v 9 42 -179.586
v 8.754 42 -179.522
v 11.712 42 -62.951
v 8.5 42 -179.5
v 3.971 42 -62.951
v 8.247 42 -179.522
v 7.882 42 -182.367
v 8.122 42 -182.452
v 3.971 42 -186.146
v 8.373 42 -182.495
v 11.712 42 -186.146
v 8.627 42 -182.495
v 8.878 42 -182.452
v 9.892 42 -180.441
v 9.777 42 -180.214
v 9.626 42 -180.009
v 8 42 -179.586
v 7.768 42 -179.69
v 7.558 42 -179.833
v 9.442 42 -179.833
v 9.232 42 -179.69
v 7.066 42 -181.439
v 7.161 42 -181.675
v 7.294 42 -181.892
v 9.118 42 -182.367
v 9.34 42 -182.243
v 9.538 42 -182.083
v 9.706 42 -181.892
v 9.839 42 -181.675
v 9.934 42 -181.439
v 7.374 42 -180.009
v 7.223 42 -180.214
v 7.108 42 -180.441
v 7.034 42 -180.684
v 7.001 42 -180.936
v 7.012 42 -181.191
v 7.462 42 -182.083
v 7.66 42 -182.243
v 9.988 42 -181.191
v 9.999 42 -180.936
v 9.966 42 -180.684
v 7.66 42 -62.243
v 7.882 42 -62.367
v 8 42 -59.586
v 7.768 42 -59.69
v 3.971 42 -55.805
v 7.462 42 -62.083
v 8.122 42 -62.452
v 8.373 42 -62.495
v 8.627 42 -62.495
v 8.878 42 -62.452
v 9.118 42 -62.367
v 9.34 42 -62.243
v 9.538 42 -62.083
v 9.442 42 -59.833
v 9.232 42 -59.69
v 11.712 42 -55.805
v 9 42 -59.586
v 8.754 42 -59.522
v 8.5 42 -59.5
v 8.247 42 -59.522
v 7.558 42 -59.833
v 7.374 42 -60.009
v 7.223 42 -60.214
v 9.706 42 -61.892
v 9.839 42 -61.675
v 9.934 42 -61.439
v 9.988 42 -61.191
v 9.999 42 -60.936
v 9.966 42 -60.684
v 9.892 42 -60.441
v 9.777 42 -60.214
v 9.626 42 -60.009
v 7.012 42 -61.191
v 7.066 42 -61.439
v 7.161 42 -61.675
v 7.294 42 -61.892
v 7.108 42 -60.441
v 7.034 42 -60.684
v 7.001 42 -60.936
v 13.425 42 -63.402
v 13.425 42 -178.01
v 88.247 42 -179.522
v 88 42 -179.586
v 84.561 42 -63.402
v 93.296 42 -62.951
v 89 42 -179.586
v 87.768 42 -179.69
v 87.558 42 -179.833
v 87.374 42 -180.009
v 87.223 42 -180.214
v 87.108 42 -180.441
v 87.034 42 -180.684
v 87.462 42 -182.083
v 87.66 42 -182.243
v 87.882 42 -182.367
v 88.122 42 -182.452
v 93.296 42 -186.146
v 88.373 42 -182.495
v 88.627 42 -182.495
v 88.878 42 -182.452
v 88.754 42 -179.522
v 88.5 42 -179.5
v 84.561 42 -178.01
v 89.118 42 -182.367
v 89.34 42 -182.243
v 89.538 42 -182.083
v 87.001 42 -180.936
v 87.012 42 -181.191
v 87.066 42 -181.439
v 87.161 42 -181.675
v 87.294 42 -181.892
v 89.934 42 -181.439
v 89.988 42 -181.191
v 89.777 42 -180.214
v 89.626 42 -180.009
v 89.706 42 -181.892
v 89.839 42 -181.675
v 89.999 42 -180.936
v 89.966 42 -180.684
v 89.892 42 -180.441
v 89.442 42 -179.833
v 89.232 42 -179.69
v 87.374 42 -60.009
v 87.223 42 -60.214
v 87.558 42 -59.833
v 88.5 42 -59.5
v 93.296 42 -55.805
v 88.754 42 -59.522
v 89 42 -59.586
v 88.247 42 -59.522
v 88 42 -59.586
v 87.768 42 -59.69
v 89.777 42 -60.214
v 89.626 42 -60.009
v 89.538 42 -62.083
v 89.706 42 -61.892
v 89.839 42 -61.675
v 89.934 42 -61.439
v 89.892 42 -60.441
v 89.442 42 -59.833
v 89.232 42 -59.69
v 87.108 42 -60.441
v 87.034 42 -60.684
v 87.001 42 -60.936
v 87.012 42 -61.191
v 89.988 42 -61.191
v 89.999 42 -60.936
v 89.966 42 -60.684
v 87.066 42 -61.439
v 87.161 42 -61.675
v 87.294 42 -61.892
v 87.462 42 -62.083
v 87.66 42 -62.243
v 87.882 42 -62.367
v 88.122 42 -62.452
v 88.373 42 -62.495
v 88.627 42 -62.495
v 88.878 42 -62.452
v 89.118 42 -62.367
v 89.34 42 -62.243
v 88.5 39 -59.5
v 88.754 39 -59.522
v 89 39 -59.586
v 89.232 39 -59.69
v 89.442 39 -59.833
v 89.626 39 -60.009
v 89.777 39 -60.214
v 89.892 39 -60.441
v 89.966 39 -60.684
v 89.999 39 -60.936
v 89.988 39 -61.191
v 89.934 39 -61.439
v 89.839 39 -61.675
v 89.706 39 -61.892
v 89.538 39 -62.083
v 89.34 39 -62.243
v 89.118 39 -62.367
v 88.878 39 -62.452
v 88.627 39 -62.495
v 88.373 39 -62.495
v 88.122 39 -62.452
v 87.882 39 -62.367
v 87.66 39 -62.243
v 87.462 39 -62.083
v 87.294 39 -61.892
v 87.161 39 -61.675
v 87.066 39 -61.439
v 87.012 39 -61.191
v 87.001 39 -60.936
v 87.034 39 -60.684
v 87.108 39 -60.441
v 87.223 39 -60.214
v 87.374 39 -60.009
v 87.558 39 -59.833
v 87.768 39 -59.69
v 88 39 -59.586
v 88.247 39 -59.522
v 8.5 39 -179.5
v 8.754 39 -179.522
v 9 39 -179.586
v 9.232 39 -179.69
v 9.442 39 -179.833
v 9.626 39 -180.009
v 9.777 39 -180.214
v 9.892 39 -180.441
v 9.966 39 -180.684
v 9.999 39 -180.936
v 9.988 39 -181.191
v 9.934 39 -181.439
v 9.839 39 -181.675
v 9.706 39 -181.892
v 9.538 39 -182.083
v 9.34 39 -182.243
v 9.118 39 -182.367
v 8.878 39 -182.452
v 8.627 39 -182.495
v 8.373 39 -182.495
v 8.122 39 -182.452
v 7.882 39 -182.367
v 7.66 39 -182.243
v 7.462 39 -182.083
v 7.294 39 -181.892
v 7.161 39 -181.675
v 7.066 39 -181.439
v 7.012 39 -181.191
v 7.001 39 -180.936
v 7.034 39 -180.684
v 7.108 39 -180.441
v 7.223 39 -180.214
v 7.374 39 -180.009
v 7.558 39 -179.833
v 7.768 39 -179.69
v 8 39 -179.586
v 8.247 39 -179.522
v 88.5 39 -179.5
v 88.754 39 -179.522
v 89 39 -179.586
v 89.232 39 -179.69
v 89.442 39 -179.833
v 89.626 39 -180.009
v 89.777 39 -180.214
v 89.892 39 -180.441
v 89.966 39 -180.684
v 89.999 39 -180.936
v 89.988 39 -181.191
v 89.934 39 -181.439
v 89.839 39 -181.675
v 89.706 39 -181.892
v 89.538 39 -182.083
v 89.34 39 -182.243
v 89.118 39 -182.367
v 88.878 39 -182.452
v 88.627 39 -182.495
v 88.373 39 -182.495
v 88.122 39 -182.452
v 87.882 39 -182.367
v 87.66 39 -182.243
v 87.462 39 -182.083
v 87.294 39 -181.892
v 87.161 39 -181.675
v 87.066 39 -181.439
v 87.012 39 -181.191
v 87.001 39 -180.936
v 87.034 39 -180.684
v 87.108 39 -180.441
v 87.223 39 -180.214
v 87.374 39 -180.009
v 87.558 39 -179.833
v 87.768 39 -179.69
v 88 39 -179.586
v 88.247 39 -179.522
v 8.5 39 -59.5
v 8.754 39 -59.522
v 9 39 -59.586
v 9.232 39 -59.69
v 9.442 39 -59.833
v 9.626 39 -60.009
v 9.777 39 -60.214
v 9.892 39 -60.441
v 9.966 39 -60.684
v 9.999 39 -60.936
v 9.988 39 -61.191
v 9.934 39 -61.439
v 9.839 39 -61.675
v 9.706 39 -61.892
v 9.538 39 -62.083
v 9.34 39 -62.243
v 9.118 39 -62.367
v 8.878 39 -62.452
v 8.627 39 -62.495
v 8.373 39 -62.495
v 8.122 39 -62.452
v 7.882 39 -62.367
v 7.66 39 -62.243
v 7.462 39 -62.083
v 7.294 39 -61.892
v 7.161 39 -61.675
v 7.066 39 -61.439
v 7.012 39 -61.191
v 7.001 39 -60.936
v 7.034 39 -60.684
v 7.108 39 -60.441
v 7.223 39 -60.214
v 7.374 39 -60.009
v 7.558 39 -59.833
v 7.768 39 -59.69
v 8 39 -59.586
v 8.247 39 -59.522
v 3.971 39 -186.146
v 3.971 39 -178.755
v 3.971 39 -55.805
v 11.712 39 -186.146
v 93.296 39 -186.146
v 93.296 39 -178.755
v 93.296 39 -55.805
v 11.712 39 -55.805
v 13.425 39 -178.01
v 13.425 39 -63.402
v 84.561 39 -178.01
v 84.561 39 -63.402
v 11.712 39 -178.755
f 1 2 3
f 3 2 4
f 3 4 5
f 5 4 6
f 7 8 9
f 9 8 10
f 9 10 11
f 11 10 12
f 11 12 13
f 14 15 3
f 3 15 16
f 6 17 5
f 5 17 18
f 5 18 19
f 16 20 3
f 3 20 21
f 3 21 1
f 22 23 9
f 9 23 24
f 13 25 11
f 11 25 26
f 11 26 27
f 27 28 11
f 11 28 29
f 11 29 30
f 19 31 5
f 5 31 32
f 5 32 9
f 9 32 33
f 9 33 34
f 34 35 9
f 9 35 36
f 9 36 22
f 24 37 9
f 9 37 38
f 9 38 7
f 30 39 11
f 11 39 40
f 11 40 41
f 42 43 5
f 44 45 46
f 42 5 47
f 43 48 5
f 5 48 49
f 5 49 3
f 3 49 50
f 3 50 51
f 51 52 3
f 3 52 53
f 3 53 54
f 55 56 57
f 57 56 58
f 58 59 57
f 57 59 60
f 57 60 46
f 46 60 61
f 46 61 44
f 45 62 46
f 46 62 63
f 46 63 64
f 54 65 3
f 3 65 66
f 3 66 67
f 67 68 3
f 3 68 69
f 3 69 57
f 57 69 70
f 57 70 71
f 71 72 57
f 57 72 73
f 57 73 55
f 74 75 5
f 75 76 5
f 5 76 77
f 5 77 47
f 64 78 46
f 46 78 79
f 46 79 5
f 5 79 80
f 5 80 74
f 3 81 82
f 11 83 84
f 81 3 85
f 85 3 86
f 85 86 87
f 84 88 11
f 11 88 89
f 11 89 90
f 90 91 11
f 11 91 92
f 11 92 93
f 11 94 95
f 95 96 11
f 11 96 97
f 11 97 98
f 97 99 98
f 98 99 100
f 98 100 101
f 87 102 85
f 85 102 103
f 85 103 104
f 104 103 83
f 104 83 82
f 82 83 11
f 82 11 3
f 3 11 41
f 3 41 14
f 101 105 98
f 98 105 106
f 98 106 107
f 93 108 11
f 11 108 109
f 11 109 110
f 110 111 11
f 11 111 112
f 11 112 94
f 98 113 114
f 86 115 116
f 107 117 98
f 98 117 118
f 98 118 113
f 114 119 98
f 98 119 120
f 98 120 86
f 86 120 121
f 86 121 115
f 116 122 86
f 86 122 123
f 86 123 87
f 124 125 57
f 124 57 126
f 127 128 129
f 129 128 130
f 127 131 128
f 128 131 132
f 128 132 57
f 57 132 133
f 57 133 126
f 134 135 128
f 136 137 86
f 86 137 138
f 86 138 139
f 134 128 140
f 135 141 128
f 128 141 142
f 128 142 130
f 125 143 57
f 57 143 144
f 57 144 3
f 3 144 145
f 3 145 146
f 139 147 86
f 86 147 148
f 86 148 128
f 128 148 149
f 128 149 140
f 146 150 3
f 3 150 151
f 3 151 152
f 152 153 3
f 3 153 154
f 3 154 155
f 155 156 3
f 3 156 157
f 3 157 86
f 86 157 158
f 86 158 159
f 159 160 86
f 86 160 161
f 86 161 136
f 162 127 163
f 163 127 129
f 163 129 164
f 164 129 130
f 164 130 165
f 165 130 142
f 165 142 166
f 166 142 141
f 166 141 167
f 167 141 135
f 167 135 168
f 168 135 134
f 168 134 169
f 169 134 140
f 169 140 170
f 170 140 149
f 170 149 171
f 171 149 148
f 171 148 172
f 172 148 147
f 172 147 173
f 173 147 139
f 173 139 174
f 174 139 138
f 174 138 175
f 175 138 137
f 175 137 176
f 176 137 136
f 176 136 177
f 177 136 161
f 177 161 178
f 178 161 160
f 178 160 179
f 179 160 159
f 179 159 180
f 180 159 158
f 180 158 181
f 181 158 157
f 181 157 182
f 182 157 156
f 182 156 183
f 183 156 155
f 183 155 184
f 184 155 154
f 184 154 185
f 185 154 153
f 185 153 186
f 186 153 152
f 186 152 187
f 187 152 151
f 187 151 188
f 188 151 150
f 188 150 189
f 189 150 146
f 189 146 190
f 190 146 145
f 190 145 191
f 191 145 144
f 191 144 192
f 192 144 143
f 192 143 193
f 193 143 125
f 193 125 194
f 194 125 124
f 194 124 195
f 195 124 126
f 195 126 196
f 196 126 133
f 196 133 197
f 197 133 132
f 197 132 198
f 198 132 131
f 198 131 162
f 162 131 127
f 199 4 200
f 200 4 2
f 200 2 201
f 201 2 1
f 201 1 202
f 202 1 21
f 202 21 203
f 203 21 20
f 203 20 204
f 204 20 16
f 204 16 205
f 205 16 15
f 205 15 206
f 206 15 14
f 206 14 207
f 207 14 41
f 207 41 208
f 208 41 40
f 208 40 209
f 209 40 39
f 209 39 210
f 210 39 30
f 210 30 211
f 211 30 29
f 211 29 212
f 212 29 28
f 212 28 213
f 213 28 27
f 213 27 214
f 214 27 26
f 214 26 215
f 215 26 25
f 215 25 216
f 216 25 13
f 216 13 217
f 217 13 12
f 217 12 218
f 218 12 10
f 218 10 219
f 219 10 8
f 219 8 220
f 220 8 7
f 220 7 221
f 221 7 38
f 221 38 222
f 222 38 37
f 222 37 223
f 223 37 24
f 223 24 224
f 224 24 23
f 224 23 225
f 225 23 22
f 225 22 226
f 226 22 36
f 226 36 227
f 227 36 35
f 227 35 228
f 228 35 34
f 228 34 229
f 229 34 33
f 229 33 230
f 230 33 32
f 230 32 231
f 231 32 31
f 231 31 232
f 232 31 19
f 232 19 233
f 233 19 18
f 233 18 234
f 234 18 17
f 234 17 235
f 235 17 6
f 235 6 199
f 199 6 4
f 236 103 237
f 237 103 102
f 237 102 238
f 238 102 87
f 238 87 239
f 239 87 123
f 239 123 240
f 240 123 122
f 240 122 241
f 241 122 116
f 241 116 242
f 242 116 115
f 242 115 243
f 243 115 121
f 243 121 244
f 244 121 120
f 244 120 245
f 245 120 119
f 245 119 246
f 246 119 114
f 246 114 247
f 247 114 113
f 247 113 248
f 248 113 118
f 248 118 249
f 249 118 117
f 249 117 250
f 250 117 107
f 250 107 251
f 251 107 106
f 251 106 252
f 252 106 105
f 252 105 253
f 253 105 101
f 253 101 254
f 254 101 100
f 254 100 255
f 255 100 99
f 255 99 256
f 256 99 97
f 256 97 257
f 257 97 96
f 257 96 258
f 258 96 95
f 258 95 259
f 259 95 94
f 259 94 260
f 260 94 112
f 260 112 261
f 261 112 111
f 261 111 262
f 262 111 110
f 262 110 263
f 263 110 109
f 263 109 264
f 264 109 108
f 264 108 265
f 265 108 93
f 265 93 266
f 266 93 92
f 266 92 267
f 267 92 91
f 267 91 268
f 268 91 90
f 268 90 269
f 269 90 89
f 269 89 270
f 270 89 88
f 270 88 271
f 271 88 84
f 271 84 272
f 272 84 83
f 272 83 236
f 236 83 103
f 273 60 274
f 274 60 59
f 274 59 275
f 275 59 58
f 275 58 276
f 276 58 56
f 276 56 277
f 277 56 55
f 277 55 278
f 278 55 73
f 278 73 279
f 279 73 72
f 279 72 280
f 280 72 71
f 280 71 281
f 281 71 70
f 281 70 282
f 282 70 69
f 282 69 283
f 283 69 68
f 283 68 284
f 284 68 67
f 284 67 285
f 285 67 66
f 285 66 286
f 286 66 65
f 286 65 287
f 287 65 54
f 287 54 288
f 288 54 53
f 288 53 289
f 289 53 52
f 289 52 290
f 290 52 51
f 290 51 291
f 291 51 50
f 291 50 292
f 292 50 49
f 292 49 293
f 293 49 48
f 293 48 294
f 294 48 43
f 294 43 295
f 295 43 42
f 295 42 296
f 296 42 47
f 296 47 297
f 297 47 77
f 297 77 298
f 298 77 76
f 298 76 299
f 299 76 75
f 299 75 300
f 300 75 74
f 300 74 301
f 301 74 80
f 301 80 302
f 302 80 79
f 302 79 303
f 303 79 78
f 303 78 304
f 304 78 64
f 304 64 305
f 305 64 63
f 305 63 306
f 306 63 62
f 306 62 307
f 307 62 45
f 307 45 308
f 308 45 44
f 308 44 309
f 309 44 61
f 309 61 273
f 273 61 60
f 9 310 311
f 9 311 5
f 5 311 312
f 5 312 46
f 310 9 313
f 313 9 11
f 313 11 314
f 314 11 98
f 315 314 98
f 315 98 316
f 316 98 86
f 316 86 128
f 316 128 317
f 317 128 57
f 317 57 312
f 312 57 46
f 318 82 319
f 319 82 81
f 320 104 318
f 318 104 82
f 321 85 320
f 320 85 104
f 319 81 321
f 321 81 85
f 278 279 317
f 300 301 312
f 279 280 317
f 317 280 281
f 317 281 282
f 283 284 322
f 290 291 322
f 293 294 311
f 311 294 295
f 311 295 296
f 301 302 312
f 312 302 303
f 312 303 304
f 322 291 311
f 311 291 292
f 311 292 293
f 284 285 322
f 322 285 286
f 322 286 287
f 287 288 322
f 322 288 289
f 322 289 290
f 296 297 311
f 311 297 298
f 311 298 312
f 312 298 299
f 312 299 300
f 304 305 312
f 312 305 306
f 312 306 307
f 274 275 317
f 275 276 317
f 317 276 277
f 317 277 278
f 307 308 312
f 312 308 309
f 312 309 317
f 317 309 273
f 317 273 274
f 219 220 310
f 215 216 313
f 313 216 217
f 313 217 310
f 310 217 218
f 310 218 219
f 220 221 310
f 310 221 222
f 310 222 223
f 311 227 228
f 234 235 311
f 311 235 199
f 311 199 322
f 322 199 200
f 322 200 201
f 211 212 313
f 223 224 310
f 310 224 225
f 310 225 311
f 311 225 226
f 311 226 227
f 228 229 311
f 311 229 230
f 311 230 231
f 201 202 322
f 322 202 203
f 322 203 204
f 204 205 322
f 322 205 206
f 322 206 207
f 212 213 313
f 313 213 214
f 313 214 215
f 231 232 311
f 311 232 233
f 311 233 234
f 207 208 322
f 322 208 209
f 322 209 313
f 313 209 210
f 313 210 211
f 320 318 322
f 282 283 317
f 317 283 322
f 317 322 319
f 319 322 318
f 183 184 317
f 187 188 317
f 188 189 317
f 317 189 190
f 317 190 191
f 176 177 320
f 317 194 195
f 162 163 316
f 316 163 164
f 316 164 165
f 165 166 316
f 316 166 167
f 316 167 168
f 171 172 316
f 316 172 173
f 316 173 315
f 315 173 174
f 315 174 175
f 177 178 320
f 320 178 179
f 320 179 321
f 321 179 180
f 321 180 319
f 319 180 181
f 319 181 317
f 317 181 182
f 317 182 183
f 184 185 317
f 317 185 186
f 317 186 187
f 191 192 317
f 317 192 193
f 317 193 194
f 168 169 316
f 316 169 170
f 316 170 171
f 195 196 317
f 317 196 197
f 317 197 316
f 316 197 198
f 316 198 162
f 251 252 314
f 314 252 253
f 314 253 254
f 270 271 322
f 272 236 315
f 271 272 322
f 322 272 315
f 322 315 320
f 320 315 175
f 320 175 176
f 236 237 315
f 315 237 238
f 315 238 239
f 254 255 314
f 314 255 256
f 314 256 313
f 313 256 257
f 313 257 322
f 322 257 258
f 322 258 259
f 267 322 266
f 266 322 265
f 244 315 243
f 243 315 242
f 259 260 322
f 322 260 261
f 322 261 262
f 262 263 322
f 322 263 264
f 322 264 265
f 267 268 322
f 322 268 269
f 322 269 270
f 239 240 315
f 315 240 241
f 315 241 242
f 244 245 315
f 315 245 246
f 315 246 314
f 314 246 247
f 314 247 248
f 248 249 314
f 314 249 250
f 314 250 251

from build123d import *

# Parameters (mm, degrees)
SKETCH1_W           = 97
SKETCH1_H           = 200
BOSS_EXTRUDE1_DEPTH = 42
SKETCH3_R           = 1.5
CUT_EXTRUDE1_DEPTH  = 3
SKETCH4_W           = 97
SKETCH4_H           = 200
SKETCH4_W_2         = 89.324278463
SKETCH4_H_2         = 130.340528777
CUT_EXTRUDE2_DEPTH  = 227.214499977
SKETCH5_W           = 71.136204213
SKETCH5_H           = 114.608329011
CUT_EXTRUDE3_DEPTH  = 213.410706636
SKETCH6_W           = 89.324278463
SKETCH6_H           = 39
CUT_EXTRUDE4_DEPTH  = 166.700724789


with BuildPart() as part:
    # Sketch1 → Boss-Extrude1 (new body)
    with BuildSketch(Plane(origin=(0, 0, 0), x_dir=(1, 0, 0), z_dir=(0, 1, 0))):
        with Locations((48.5, 100)):
            Rectangle(SKETCH1_W, SKETCH1_H)
    extrude(amount=BOSS_EXTRUDE1_DEPTH)

    # Sketch3 → Cut-Extrude1 (cut)
    with BuildSketch(Plane(origin=(0, 42, 0), x_dir=(1, 0, 0), z_dir=(0, 1, 0))):
        with Locations(Location((88.5, 61, 0), (0, 0, 270))):
            Circle(SKETCH3_R)
        with Locations(Location((8.5, 61, 0), (0, 0, 270))):
            Circle(SKETCH3_R)
        with Locations(Location((88.5, 181, 0), (0, 0, 270))):
            Circle(SKETCH3_R)
        with Locations(Location((8.5, 181, 0), (0, 0, 270))):
            Circle(SKETCH3_R)
    extrude(amount=-CUT_EXTRUDE1_DEPTH, mode=Mode.SUBTRACT)

    # Sketch4 → Cut-Extrude2 (cut, through all)
    with BuildSketch(Plane(origin=(0, 42, 0), x_dir=(1, 0, 0), z_dir=(0, 1, 0))):
        with Locations((48.5, 100)):
            Rectangle(SKETCH4_W, SKETCH4_H)
        with Locations((48.633502434, 120.975462234)):
            Rectangle(SKETCH4_W_2, SKETCH4_H_2, mode=Mode.SUBTRACT)
    extrude(amount=-CUT_EXTRUDE2_DEPTH, mode=Mode.SUBTRACT)

    # Sketch5 → Cut-Extrude3 (cut, through all)
    with BuildSketch(Plane(origin=(0, 42, 0), x_dir=(1, 0, 0), z_dir=(0, 1, 0))):
        with Locations((48.992776193, 120.706006915)):
            Rectangle(SKETCH5_W, SKETCH5_H)
    extrude(amount=-CUT_EXTRUDE3_DEPTH, mode=Mode.SUBTRACT)

    # Sketch6 → Cut-Extrude4 (cut, through all)
    with BuildSketch(Plane(origin=(0, 0, -186.145726622), x_dir=(-1, 0, 0), z_dir=(0, 0, -1))):
        with Locations((-48.633502434, 19.5)):
            Rectangle(SKETCH6_W, SKETCH6_H)
    extrude(amount=-CUT_EXTRUDE4_DEPTH, mode=Mode.SUBTRACT)


solid = part.part
